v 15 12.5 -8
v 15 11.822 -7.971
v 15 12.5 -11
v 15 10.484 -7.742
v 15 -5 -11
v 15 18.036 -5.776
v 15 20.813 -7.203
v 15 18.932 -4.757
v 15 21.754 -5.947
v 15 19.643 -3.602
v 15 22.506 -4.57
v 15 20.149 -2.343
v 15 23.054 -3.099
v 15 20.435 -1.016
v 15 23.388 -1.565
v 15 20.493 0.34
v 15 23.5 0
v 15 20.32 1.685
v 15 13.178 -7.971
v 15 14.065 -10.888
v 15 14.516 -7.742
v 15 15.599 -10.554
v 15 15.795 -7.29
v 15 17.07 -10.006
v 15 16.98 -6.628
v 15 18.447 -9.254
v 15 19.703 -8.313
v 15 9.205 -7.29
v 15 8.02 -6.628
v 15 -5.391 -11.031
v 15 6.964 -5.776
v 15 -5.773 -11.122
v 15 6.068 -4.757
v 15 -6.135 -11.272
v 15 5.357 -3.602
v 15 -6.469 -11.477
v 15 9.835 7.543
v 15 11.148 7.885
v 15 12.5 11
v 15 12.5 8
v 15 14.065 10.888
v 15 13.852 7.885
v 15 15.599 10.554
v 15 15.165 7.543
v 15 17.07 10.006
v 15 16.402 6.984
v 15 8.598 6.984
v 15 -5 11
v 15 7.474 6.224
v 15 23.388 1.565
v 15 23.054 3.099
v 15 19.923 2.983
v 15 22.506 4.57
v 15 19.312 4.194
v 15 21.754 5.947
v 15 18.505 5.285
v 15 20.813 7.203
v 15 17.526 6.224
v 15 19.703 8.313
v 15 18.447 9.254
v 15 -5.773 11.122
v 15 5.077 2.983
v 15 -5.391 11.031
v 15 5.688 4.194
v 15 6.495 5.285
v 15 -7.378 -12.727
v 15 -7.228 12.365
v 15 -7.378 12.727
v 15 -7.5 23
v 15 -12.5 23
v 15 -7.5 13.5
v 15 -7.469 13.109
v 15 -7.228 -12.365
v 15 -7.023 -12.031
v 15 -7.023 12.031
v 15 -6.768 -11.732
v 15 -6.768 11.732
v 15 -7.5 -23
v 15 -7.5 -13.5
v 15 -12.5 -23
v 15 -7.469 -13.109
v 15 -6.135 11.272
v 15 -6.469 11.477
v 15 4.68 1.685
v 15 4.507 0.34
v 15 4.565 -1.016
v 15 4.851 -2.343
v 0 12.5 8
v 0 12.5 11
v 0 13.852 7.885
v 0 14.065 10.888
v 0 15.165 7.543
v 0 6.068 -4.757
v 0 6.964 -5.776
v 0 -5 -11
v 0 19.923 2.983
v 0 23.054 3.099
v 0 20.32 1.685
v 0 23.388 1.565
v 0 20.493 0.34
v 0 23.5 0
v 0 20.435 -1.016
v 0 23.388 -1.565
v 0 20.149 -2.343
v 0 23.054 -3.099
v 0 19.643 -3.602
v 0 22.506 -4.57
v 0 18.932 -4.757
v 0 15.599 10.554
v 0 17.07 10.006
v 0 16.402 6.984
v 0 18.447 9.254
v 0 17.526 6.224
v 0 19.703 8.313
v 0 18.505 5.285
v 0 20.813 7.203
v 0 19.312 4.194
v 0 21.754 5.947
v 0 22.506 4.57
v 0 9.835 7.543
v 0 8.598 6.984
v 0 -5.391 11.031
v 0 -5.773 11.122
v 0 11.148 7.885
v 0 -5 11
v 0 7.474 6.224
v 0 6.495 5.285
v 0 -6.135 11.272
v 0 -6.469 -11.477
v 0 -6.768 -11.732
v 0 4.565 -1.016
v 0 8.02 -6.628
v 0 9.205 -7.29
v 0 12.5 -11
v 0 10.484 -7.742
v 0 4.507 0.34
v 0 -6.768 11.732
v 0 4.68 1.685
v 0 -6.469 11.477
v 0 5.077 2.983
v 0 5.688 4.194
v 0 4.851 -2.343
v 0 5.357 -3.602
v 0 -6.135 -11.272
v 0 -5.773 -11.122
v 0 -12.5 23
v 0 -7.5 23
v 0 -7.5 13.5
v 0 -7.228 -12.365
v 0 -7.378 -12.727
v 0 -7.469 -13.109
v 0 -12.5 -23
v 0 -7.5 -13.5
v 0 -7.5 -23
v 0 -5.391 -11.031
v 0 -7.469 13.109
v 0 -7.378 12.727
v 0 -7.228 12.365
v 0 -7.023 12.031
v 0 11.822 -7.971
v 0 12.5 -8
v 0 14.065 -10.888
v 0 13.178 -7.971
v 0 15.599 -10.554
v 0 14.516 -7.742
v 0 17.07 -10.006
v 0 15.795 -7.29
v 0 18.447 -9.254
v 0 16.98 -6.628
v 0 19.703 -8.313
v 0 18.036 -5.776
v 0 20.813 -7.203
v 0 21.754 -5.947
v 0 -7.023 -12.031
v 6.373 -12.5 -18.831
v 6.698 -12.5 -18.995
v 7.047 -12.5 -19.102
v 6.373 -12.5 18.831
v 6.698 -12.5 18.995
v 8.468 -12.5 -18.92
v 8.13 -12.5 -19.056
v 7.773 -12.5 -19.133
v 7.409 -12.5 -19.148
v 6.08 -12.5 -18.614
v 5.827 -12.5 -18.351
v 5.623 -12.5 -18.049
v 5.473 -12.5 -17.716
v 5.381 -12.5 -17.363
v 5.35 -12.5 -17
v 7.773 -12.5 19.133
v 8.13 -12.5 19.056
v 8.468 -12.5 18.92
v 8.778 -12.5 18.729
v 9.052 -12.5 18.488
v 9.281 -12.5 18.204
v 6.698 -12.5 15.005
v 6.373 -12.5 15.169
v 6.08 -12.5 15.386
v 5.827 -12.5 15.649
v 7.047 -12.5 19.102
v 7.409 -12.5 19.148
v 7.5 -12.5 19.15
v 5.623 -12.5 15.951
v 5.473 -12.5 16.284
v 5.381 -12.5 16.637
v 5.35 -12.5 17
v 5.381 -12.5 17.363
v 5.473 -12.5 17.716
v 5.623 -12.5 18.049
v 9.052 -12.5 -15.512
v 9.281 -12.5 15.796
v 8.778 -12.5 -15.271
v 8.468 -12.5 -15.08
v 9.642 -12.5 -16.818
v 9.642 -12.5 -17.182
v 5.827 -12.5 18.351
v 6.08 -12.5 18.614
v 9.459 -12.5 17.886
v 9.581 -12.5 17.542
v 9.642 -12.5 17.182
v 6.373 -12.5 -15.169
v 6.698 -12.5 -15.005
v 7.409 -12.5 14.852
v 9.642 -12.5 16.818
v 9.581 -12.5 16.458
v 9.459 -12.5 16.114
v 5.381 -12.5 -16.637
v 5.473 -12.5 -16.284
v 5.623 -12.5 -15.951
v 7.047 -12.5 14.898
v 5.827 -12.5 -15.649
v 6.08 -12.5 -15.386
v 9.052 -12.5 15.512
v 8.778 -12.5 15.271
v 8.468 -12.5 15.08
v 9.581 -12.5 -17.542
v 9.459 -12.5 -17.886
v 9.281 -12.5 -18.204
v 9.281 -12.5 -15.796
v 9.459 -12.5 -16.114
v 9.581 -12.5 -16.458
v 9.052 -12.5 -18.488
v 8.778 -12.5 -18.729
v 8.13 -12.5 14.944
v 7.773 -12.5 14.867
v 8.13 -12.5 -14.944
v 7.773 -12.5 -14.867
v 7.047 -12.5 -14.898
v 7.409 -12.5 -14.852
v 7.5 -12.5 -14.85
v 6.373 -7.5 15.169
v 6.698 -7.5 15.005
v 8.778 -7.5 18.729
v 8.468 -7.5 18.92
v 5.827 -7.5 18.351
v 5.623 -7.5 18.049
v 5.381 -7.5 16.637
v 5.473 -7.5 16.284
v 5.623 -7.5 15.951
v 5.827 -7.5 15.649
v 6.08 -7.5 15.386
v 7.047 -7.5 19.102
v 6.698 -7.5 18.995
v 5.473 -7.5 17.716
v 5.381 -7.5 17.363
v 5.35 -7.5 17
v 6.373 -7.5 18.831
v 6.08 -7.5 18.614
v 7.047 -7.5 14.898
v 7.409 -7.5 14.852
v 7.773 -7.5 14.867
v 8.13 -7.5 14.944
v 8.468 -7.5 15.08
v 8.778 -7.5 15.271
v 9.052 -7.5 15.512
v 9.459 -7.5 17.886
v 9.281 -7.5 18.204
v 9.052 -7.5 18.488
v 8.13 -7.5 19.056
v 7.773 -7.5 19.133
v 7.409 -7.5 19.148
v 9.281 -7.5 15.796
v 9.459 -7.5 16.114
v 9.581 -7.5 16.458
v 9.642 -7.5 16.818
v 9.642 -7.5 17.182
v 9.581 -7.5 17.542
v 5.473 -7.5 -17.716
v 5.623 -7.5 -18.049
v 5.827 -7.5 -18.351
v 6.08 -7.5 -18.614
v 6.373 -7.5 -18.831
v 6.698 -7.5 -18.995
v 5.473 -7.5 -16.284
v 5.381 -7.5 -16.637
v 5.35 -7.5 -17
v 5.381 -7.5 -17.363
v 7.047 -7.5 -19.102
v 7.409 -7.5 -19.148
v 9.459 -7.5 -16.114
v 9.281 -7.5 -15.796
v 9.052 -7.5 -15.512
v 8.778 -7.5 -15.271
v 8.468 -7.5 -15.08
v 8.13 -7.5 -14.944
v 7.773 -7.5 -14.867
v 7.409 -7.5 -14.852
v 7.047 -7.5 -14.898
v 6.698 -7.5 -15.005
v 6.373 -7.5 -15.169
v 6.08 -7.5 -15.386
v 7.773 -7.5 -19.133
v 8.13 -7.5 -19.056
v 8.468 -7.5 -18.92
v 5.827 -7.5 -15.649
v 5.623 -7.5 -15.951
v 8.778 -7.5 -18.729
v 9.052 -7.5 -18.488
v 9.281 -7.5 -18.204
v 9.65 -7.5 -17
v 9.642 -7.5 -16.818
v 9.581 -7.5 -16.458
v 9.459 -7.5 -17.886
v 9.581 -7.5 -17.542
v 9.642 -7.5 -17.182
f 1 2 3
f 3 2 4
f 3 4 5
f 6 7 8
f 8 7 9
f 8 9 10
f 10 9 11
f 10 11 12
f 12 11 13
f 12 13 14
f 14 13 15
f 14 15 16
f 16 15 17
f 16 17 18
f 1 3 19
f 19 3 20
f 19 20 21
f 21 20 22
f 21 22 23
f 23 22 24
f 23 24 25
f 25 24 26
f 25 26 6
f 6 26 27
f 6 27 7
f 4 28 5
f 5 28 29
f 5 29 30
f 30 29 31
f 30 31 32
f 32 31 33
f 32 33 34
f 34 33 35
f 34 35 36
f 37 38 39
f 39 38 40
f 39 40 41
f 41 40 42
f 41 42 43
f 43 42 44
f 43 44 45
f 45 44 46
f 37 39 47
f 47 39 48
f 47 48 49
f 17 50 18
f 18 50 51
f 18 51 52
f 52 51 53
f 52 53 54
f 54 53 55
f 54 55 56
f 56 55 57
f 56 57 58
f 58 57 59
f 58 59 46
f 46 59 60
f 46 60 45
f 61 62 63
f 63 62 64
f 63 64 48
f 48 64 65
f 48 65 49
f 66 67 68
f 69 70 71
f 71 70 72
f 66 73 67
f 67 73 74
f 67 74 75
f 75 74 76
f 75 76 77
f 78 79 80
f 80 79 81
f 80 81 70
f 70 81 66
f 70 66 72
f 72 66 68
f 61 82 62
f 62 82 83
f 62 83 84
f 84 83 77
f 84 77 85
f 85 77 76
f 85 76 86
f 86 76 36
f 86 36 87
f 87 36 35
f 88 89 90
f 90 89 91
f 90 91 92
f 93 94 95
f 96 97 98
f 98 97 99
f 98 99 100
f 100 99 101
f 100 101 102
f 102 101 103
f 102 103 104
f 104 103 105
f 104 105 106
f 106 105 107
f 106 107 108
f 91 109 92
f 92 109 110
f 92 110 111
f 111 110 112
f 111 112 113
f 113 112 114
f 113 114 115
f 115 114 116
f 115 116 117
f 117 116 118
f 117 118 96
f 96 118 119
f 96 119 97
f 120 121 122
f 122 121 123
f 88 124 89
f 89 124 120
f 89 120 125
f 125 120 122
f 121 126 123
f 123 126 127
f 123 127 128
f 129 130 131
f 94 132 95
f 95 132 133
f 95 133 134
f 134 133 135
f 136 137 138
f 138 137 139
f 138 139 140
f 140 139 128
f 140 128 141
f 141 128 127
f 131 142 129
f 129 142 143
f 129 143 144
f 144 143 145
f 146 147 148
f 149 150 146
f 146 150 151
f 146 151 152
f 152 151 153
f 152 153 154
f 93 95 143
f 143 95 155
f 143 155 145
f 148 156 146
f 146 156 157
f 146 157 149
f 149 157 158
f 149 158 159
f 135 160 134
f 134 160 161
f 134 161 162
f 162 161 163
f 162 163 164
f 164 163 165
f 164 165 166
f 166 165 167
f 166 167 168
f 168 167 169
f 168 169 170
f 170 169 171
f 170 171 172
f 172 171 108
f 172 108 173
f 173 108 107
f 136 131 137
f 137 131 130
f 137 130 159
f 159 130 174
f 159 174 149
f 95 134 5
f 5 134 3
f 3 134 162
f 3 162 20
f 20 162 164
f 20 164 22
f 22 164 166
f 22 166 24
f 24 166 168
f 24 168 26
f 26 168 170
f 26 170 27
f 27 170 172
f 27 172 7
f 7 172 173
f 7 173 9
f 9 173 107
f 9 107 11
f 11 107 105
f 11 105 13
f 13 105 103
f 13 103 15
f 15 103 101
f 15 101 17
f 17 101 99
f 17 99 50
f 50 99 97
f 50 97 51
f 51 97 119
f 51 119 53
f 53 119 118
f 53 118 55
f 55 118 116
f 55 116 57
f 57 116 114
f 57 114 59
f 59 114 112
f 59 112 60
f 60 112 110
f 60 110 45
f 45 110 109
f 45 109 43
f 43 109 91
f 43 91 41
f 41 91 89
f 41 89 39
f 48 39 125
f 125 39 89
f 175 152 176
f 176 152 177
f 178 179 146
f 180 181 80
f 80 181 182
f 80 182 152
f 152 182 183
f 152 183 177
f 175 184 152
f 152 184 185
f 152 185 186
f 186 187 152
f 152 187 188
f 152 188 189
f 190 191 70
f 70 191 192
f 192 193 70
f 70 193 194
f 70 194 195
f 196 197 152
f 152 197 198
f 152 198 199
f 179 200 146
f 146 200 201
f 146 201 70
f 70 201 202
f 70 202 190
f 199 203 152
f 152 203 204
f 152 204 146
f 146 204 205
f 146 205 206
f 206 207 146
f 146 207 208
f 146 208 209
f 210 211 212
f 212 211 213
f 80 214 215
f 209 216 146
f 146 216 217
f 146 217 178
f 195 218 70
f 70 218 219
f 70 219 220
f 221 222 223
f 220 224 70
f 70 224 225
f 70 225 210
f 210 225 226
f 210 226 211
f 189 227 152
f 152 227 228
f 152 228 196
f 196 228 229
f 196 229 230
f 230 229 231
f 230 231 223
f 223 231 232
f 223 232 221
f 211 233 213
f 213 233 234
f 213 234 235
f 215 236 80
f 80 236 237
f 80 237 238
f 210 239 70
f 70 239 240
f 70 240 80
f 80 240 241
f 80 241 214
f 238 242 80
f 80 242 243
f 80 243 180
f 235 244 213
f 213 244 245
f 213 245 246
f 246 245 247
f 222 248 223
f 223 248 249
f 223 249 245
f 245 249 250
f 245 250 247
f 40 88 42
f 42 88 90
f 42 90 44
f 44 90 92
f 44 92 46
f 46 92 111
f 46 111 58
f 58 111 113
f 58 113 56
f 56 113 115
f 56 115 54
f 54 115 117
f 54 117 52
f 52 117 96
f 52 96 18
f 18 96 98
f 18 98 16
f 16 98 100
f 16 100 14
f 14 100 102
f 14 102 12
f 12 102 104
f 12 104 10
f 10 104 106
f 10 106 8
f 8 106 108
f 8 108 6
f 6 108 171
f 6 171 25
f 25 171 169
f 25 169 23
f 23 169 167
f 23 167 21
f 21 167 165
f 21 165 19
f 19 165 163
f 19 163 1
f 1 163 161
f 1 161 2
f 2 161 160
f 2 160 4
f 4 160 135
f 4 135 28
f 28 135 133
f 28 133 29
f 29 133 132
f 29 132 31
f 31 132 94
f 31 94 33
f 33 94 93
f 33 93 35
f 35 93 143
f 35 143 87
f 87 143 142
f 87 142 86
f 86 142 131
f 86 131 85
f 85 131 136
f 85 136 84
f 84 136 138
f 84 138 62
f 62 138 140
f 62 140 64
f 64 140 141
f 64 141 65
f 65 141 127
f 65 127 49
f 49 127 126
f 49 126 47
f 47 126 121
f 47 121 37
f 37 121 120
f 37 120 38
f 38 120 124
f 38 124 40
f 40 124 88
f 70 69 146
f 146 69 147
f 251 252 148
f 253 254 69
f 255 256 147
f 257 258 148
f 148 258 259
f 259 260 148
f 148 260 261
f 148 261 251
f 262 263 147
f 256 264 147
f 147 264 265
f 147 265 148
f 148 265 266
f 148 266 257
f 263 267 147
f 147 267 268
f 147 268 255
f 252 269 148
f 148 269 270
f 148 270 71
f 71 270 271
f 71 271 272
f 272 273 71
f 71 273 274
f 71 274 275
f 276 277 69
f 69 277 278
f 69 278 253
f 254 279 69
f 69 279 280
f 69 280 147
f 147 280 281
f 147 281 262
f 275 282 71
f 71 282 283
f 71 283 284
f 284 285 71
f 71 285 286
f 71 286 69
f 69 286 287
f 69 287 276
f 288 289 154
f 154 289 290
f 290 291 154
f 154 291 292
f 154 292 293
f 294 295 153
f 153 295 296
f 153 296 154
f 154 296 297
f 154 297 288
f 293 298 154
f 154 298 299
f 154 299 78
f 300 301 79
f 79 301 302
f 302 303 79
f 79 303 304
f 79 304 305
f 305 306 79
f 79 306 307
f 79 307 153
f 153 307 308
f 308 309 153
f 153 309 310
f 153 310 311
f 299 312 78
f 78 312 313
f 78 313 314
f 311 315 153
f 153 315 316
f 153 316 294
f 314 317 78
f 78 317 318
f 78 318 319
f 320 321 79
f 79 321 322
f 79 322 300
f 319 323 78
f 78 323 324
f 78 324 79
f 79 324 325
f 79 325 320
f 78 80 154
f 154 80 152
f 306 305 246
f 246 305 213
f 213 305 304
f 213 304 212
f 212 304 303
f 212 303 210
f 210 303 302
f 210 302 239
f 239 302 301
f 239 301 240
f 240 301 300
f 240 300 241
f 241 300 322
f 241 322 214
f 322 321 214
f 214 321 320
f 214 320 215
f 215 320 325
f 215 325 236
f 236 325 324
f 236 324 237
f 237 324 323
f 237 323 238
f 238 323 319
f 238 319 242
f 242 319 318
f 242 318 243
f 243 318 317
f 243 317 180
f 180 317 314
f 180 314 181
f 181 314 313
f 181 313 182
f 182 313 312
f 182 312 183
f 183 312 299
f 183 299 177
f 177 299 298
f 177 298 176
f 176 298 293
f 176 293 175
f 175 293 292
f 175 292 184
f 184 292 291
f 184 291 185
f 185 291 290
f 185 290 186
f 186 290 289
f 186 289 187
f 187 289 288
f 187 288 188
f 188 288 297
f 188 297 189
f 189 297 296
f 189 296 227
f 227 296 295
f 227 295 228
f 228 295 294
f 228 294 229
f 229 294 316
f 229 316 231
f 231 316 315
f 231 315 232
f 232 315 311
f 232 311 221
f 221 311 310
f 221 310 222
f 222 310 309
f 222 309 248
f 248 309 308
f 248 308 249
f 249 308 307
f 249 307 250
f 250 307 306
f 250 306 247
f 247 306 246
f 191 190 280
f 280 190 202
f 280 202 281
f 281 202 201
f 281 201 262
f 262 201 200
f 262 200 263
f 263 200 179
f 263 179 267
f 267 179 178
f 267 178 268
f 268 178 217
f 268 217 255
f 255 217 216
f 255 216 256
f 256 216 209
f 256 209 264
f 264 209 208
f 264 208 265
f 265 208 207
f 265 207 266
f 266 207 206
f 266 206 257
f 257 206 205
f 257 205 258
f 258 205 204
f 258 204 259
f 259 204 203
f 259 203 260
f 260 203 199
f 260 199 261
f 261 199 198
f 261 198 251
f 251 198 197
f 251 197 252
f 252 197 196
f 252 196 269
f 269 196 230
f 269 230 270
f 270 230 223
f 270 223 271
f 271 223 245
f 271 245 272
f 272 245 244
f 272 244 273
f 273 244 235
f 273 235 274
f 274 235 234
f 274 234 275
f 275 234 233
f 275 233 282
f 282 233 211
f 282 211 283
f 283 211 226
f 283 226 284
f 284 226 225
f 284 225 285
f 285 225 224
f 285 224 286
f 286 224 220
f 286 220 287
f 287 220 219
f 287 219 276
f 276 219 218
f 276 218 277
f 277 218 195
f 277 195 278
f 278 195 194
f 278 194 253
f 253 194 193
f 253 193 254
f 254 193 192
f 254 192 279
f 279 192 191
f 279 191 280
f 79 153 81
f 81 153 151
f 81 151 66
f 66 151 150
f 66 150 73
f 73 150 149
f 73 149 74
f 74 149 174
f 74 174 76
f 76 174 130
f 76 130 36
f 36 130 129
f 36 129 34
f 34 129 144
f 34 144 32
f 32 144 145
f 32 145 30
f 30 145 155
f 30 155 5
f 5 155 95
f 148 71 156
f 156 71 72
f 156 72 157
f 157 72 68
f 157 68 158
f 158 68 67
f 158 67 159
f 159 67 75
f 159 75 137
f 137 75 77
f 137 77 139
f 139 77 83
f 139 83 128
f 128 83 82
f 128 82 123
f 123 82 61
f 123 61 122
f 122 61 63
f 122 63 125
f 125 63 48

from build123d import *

# Parameters (mm, degrees)
SKETCH1_R                = 8
BOSS_EXTRUDE1_DEPTH      = 15
SKETCH2_W                = 15
SKETCH2_H                = 5
BOSS_EXTRUDE2_DEPTH      = 12
BOSS_EXTRUDE2_DEPTH_BACK = 34
SKETCH3_R                = 2.15
CUT_EXTRUDE1_DEPTH       = 5
FILLET1_R                = 2.5


with BuildPart() as part:
    # Sketch1 → Boss-Extrude1 (new body)
    with BuildSketch(Plane(origin=(0, 0, 0), x_dir=(0, 0, -1), z_dir=(1, 0, 0))):
        with BuildLine():
            Line((-11, 12.5), (-11, -12.5))
            Line((-11, -12.5), (11, -12.5))
            Line((11, -12.5), (11, 12.5))
            ThreePointArc((11, 12.5), (0, 23.5), (-11, 12.5))
        make_face()
        with Locations((0, 12.5)):
            Circle(SKETCH1_R, mode=Mode.SUBTRACT)
    extrude(amount=BOSS_EXTRUDE1_DEPTH)

    # Sketch2 → Boss-Extrude2 (add, two sides)
    with BuildSketch(Plane.XY.offset(11)) as boss_extrude2_sk:
        with Locations((7.5, -10)):
            Rectangle(SKETCH2_W, SKETCH2_H)
    extrude(amount=BOSS_EXTRUDE2_DEPTH)
    extrude(boss_extrude2_sk.sketch, amount=-BOSS_EXTRUDE2_DEPTH_BACK)

    # Sketch3 → Cut-Extrude1 (cut)
    with BuildSketch(Plane(origin=(0, -7.5, 0), x_dir=(1, 0, 0), z_dir=(0, 1, 0))):
        with Locations((7.5, -17)):
            Circle(SKETCH3_R)
        with Locations((7.5, 17)):
            Circle(SKETCH3_R)
    extrude(amount=-CUT_EXTRUDE1_DEPTH, mode=Mode.SUBTRACT)

    # Fillet1
    fillet1_edges = [part.edges().sort_by_distance(p)[0] for p in [
        (7.5, -7.5, 11),
        (7.5, -7.5, -11),
    ]]
    fillet(fillet1_edges, radius=FILLET1_R)


solid = part.part
